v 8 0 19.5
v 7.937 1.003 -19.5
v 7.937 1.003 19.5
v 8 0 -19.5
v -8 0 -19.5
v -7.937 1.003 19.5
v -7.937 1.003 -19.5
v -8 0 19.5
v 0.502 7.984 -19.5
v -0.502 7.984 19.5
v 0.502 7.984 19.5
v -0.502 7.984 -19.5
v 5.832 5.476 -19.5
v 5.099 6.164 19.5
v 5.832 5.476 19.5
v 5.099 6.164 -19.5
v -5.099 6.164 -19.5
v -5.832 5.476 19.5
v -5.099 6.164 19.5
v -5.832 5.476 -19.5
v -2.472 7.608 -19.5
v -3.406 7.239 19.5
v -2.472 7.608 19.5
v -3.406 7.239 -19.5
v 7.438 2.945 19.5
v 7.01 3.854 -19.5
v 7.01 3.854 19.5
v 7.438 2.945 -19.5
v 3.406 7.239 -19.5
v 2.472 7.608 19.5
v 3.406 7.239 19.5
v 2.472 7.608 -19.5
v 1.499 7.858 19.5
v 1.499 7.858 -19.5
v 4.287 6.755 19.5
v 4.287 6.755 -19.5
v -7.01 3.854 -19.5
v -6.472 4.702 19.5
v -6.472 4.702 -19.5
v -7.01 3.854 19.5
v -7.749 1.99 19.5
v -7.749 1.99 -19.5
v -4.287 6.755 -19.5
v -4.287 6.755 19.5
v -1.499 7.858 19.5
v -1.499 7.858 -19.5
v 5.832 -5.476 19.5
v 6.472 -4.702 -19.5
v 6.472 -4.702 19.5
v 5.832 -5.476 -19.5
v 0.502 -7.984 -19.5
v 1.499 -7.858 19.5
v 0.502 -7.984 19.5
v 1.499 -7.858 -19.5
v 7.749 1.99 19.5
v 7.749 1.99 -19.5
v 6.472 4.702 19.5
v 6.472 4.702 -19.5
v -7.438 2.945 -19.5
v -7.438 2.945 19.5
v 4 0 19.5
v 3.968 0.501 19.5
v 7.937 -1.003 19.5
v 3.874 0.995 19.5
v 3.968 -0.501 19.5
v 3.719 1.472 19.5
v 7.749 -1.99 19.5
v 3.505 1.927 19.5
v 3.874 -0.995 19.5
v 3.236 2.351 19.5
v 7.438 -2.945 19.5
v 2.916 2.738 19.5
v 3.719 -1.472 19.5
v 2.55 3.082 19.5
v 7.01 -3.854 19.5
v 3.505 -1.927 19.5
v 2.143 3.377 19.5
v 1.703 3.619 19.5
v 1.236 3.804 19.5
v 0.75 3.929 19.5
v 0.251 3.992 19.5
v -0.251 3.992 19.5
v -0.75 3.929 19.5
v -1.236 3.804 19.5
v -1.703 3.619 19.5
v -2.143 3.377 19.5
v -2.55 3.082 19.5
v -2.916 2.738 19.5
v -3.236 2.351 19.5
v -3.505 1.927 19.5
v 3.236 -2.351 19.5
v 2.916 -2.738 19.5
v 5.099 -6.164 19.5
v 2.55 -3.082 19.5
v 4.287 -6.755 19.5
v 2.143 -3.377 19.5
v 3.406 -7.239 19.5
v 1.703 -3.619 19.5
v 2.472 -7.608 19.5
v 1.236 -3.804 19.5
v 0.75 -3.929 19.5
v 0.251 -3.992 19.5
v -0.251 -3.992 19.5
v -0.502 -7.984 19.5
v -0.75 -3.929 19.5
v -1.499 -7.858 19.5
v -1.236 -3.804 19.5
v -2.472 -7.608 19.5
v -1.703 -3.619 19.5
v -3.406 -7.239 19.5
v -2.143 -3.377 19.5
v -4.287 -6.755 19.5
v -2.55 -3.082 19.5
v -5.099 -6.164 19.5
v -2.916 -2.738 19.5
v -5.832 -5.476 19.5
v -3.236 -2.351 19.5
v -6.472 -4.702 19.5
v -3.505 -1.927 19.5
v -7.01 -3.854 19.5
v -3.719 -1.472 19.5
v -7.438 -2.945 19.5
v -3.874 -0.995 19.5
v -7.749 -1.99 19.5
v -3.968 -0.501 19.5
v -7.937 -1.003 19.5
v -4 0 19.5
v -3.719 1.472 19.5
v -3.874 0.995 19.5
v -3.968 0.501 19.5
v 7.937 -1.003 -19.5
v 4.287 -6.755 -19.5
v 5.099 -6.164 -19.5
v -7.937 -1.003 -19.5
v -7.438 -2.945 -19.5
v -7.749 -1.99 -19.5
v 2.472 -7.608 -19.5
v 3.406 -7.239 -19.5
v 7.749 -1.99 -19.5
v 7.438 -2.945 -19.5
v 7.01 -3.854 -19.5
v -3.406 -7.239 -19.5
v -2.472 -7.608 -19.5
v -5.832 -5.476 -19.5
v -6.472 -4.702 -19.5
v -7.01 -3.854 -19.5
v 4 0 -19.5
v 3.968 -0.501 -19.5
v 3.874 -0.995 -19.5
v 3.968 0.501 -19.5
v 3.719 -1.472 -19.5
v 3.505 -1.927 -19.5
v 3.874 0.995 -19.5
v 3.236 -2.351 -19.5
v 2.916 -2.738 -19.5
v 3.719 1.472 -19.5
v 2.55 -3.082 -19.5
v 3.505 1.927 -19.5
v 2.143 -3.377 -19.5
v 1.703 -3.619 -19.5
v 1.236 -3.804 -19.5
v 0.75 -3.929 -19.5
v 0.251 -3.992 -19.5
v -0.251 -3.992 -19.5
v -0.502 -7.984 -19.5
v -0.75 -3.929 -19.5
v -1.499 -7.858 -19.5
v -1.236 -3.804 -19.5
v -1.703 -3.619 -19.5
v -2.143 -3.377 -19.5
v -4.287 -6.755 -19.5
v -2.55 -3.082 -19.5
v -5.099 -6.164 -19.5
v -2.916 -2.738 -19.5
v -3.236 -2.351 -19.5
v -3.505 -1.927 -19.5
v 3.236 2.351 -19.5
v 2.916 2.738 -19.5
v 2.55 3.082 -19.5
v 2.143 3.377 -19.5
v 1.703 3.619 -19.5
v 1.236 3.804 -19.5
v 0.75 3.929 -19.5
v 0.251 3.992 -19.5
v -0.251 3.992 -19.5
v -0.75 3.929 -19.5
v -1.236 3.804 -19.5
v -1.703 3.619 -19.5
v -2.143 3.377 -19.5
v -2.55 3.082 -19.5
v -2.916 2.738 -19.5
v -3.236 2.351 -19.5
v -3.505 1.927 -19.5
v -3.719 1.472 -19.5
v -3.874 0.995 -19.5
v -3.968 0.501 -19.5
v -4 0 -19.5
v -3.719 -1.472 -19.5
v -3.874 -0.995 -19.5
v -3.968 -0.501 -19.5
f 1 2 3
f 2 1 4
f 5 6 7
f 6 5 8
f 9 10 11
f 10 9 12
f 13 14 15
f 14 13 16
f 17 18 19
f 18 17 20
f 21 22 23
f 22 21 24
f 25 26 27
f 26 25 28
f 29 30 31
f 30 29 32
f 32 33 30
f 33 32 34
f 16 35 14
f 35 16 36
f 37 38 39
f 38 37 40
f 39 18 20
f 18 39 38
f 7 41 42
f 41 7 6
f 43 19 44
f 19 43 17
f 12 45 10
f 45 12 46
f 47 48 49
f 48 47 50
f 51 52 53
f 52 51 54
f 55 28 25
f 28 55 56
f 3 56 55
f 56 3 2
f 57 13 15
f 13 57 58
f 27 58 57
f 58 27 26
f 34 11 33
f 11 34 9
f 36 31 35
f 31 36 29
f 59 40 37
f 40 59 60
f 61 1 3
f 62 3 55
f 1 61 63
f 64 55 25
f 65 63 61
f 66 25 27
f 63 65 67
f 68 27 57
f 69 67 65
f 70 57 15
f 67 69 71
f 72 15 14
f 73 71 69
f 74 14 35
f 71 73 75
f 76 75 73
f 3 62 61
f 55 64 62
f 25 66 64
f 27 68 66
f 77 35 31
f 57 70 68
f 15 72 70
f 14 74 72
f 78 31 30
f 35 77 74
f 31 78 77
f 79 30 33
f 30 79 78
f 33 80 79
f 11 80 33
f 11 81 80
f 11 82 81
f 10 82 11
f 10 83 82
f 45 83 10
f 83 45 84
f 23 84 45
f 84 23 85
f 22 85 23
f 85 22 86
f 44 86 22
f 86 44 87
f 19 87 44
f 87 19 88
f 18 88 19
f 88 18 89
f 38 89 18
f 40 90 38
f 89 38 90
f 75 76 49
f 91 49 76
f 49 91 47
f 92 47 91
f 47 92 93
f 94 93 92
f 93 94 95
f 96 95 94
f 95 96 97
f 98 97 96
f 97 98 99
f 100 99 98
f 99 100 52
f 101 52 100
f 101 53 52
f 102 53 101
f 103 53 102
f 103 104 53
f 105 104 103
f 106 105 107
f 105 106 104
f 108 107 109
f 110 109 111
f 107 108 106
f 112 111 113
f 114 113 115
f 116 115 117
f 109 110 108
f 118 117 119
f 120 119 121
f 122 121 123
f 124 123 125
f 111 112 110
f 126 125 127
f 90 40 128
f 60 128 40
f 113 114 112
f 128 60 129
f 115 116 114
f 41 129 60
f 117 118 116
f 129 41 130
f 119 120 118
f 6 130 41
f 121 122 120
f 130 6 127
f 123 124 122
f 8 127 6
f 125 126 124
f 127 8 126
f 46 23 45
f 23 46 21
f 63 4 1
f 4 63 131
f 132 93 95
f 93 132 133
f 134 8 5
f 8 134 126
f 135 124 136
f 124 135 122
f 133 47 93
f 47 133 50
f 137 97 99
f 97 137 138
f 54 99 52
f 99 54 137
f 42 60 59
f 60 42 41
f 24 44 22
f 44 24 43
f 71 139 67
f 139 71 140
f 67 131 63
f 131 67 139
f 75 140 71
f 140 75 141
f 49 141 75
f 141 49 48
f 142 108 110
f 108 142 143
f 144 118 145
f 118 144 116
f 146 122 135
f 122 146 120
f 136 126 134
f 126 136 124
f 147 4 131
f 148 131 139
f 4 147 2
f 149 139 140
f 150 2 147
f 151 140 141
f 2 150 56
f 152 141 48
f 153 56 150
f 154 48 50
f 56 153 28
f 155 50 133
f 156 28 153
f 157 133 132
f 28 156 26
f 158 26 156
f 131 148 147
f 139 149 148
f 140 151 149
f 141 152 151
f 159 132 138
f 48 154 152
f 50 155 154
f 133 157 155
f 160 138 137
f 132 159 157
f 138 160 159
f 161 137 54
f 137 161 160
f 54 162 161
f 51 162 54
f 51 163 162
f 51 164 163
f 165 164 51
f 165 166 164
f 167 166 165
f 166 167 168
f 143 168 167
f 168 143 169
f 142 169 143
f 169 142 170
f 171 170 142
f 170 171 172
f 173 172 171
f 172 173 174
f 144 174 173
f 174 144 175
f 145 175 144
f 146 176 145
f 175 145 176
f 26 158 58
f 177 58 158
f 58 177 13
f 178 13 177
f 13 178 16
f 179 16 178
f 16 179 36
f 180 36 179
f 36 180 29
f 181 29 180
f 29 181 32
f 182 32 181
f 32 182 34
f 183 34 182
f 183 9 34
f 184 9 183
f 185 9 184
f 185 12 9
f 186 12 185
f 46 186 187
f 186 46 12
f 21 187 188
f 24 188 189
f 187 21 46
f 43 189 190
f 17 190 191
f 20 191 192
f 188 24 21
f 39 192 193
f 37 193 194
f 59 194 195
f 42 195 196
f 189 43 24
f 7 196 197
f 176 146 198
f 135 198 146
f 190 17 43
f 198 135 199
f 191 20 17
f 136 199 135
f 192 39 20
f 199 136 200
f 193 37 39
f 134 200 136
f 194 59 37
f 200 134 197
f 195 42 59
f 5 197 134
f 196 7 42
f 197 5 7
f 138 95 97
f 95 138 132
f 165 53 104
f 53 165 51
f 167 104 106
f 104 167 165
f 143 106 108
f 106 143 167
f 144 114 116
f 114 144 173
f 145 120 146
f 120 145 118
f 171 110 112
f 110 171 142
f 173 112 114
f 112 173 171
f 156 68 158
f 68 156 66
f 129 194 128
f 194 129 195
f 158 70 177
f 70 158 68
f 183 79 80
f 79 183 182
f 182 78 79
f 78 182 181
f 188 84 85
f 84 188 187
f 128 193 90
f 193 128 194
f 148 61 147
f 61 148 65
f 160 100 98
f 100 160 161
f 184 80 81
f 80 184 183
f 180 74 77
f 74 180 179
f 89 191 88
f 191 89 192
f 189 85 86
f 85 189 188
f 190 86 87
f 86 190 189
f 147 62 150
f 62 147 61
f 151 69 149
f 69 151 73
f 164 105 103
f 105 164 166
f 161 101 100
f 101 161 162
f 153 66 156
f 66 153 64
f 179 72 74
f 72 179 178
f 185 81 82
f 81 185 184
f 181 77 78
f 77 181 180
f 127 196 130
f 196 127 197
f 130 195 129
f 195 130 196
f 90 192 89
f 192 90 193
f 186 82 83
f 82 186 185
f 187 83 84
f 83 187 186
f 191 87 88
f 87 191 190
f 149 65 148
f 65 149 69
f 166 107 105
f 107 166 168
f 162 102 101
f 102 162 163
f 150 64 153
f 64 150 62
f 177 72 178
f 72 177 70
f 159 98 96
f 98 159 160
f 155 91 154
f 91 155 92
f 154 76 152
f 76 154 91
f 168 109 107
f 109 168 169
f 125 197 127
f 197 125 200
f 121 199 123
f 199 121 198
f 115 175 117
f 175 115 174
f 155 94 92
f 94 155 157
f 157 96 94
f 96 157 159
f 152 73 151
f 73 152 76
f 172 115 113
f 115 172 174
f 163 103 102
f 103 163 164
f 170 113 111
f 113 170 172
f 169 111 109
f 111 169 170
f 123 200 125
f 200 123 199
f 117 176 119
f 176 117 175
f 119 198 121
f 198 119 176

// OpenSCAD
$fn = 50;


difference() {
	union() {
		translate(v = [0, 0, -19.5000000000]) {
			cylinder(h = 39, r = 8.0000000000);
		}
	}
	union() {
		translate(v = [0, 0, -100.0000000000]) {
			cylinder(h = 200, r = 4.0000000000);
		}
	}
}
